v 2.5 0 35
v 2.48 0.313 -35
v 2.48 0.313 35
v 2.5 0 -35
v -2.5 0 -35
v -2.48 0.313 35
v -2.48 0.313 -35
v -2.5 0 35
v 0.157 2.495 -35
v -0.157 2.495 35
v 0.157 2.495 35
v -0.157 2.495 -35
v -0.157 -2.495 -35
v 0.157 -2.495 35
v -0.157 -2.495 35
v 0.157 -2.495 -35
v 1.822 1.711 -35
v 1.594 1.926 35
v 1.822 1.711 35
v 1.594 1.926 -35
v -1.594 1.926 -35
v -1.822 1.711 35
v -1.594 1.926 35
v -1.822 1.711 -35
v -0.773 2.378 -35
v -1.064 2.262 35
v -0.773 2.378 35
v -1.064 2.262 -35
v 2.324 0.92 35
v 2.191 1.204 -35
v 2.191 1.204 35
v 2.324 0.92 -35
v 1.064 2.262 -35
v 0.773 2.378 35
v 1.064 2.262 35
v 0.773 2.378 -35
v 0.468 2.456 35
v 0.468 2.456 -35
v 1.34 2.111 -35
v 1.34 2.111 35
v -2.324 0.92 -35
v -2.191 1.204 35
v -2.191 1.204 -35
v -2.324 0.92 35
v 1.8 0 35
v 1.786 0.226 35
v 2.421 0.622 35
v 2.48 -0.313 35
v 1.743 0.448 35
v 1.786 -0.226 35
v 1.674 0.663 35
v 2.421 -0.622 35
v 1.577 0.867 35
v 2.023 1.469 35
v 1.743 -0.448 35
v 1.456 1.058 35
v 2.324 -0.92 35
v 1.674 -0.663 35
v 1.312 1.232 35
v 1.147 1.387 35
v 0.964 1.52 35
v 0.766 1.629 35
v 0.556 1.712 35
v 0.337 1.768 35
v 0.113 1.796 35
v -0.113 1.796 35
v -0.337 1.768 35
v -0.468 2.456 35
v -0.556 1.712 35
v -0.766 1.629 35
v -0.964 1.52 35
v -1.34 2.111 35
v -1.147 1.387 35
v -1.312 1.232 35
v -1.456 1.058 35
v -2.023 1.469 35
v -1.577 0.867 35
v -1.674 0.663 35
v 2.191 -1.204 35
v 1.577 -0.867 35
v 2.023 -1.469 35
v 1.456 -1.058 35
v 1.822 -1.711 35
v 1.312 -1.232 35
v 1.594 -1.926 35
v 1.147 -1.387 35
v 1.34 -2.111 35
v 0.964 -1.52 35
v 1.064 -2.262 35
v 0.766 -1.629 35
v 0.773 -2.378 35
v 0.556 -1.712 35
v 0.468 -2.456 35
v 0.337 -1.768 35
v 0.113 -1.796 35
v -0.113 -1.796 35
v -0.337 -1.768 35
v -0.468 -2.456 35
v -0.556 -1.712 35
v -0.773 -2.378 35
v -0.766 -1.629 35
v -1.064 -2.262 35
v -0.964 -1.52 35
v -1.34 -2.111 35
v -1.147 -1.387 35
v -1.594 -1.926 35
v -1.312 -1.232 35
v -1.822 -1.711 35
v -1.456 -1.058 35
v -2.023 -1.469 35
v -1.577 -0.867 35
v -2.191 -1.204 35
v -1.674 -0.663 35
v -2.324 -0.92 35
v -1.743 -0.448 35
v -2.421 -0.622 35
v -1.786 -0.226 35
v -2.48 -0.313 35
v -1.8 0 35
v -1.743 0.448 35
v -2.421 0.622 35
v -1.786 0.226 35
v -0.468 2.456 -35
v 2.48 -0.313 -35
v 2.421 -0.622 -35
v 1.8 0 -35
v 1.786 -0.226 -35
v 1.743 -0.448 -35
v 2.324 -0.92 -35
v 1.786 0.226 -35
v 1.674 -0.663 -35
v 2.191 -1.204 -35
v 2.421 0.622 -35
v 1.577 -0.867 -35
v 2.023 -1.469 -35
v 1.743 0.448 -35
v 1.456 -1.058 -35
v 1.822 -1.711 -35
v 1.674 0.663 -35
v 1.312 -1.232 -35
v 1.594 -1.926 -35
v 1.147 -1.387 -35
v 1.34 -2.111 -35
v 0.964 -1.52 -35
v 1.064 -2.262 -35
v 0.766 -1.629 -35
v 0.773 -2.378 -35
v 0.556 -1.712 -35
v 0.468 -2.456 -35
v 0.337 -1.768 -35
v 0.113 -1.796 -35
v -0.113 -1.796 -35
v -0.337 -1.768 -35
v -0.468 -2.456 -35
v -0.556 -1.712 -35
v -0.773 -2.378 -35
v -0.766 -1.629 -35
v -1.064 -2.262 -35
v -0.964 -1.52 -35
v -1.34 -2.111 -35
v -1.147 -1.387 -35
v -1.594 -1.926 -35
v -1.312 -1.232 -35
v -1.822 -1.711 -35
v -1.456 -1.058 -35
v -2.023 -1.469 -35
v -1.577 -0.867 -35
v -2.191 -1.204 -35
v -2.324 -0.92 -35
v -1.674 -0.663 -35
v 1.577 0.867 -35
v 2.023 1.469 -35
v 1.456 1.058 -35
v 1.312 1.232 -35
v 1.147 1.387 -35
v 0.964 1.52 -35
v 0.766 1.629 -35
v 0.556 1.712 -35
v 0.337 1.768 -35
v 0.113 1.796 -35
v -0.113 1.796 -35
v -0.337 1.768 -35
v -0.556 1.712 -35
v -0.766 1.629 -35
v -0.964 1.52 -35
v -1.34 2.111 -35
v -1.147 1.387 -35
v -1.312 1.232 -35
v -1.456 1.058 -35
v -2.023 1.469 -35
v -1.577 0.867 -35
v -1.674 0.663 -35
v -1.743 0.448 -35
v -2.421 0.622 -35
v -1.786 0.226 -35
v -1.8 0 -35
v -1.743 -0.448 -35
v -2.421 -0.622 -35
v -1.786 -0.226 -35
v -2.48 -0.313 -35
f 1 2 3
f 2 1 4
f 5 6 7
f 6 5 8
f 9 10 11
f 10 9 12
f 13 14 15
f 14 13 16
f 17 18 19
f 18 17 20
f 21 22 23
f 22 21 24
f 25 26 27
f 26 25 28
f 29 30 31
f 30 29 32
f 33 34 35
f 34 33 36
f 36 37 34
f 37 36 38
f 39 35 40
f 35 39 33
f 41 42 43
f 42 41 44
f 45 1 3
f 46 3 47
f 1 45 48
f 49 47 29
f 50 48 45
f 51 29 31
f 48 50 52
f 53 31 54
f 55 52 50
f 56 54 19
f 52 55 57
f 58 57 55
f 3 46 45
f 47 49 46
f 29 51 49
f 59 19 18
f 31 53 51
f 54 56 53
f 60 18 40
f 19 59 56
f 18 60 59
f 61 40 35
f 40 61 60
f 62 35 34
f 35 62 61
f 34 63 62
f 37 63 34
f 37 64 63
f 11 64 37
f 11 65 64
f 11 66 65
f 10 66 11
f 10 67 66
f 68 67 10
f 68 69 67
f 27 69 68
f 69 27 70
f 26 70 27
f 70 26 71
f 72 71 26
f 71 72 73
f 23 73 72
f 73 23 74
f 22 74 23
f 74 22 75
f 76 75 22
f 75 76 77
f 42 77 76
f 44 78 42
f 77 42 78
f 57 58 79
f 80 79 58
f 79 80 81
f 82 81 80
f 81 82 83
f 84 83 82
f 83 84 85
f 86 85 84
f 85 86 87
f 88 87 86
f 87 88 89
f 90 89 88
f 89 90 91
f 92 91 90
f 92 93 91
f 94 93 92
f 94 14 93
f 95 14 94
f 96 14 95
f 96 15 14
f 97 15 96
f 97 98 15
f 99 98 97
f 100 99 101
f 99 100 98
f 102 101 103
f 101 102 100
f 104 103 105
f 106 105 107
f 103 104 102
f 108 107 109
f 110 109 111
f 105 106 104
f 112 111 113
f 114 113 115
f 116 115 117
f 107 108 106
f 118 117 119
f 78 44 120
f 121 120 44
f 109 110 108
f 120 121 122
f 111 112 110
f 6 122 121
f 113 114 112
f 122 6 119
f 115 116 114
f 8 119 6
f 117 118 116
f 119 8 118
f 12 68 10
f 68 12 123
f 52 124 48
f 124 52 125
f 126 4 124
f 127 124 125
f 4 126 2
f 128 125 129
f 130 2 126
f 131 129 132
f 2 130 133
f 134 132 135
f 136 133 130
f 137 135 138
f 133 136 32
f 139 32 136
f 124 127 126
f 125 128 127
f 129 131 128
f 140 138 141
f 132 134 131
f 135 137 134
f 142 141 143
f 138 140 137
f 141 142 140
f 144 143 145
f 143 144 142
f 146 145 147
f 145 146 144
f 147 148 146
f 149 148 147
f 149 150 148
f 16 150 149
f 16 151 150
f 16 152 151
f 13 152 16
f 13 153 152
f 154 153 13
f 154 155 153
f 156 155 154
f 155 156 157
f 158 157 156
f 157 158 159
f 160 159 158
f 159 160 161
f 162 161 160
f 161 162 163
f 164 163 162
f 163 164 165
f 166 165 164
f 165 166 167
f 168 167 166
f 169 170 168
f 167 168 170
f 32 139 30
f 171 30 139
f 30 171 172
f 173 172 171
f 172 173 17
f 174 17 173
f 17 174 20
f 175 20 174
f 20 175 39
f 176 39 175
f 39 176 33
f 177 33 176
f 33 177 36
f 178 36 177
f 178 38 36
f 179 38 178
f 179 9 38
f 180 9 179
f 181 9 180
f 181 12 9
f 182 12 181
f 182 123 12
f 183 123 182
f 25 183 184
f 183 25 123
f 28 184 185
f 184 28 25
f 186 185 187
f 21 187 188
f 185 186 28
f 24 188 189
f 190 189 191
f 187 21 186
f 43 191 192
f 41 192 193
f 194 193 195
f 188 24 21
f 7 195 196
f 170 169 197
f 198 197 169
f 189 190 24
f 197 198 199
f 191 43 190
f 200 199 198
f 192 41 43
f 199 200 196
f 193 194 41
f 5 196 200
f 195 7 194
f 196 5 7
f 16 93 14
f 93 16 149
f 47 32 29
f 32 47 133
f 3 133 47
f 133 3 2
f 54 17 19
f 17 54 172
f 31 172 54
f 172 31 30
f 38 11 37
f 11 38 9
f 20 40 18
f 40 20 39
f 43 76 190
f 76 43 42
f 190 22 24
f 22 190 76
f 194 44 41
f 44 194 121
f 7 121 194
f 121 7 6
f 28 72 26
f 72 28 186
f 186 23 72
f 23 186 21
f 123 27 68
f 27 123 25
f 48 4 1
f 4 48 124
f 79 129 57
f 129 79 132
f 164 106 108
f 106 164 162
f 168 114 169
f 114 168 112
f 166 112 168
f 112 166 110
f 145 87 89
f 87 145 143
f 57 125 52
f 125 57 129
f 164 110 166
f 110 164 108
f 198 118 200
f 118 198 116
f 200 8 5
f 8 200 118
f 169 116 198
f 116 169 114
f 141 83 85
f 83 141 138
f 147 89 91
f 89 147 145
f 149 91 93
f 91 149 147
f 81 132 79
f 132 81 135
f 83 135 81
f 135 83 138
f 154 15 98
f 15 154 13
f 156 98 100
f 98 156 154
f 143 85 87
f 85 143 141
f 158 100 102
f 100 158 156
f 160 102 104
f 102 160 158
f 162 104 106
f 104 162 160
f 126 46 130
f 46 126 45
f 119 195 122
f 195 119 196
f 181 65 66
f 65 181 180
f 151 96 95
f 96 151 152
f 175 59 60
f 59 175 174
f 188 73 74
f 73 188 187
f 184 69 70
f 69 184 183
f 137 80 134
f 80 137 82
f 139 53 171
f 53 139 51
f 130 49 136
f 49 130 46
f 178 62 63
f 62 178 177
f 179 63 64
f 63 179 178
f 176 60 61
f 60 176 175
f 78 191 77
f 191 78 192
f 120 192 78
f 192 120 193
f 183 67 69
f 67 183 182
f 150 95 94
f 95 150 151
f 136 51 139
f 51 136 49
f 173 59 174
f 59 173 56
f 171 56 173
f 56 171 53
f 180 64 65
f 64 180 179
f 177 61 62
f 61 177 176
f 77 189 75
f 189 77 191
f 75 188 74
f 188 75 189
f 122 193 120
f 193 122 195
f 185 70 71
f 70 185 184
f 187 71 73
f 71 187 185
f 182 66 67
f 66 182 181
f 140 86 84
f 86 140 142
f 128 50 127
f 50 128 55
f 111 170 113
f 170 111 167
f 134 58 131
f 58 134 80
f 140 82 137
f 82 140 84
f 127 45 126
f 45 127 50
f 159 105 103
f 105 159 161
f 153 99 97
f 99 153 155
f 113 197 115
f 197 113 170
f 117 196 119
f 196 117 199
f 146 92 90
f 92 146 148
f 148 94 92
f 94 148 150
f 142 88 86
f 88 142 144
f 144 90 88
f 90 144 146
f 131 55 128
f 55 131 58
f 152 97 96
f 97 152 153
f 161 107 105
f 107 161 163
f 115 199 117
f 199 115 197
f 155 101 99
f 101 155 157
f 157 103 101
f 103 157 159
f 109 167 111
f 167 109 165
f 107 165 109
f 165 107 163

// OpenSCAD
$fn = 50;


difference() {
	union() {
		translate(v = [0, 0, -35.0000000000]) {
			cylinder(h = 70, r = 2.5000000000);
		}
	}
	union() {
		translate(v = [0, 0, -100.0000000000]) {
			cylinder(h = 200, r = 1.8000000000);
		}
	}
}
